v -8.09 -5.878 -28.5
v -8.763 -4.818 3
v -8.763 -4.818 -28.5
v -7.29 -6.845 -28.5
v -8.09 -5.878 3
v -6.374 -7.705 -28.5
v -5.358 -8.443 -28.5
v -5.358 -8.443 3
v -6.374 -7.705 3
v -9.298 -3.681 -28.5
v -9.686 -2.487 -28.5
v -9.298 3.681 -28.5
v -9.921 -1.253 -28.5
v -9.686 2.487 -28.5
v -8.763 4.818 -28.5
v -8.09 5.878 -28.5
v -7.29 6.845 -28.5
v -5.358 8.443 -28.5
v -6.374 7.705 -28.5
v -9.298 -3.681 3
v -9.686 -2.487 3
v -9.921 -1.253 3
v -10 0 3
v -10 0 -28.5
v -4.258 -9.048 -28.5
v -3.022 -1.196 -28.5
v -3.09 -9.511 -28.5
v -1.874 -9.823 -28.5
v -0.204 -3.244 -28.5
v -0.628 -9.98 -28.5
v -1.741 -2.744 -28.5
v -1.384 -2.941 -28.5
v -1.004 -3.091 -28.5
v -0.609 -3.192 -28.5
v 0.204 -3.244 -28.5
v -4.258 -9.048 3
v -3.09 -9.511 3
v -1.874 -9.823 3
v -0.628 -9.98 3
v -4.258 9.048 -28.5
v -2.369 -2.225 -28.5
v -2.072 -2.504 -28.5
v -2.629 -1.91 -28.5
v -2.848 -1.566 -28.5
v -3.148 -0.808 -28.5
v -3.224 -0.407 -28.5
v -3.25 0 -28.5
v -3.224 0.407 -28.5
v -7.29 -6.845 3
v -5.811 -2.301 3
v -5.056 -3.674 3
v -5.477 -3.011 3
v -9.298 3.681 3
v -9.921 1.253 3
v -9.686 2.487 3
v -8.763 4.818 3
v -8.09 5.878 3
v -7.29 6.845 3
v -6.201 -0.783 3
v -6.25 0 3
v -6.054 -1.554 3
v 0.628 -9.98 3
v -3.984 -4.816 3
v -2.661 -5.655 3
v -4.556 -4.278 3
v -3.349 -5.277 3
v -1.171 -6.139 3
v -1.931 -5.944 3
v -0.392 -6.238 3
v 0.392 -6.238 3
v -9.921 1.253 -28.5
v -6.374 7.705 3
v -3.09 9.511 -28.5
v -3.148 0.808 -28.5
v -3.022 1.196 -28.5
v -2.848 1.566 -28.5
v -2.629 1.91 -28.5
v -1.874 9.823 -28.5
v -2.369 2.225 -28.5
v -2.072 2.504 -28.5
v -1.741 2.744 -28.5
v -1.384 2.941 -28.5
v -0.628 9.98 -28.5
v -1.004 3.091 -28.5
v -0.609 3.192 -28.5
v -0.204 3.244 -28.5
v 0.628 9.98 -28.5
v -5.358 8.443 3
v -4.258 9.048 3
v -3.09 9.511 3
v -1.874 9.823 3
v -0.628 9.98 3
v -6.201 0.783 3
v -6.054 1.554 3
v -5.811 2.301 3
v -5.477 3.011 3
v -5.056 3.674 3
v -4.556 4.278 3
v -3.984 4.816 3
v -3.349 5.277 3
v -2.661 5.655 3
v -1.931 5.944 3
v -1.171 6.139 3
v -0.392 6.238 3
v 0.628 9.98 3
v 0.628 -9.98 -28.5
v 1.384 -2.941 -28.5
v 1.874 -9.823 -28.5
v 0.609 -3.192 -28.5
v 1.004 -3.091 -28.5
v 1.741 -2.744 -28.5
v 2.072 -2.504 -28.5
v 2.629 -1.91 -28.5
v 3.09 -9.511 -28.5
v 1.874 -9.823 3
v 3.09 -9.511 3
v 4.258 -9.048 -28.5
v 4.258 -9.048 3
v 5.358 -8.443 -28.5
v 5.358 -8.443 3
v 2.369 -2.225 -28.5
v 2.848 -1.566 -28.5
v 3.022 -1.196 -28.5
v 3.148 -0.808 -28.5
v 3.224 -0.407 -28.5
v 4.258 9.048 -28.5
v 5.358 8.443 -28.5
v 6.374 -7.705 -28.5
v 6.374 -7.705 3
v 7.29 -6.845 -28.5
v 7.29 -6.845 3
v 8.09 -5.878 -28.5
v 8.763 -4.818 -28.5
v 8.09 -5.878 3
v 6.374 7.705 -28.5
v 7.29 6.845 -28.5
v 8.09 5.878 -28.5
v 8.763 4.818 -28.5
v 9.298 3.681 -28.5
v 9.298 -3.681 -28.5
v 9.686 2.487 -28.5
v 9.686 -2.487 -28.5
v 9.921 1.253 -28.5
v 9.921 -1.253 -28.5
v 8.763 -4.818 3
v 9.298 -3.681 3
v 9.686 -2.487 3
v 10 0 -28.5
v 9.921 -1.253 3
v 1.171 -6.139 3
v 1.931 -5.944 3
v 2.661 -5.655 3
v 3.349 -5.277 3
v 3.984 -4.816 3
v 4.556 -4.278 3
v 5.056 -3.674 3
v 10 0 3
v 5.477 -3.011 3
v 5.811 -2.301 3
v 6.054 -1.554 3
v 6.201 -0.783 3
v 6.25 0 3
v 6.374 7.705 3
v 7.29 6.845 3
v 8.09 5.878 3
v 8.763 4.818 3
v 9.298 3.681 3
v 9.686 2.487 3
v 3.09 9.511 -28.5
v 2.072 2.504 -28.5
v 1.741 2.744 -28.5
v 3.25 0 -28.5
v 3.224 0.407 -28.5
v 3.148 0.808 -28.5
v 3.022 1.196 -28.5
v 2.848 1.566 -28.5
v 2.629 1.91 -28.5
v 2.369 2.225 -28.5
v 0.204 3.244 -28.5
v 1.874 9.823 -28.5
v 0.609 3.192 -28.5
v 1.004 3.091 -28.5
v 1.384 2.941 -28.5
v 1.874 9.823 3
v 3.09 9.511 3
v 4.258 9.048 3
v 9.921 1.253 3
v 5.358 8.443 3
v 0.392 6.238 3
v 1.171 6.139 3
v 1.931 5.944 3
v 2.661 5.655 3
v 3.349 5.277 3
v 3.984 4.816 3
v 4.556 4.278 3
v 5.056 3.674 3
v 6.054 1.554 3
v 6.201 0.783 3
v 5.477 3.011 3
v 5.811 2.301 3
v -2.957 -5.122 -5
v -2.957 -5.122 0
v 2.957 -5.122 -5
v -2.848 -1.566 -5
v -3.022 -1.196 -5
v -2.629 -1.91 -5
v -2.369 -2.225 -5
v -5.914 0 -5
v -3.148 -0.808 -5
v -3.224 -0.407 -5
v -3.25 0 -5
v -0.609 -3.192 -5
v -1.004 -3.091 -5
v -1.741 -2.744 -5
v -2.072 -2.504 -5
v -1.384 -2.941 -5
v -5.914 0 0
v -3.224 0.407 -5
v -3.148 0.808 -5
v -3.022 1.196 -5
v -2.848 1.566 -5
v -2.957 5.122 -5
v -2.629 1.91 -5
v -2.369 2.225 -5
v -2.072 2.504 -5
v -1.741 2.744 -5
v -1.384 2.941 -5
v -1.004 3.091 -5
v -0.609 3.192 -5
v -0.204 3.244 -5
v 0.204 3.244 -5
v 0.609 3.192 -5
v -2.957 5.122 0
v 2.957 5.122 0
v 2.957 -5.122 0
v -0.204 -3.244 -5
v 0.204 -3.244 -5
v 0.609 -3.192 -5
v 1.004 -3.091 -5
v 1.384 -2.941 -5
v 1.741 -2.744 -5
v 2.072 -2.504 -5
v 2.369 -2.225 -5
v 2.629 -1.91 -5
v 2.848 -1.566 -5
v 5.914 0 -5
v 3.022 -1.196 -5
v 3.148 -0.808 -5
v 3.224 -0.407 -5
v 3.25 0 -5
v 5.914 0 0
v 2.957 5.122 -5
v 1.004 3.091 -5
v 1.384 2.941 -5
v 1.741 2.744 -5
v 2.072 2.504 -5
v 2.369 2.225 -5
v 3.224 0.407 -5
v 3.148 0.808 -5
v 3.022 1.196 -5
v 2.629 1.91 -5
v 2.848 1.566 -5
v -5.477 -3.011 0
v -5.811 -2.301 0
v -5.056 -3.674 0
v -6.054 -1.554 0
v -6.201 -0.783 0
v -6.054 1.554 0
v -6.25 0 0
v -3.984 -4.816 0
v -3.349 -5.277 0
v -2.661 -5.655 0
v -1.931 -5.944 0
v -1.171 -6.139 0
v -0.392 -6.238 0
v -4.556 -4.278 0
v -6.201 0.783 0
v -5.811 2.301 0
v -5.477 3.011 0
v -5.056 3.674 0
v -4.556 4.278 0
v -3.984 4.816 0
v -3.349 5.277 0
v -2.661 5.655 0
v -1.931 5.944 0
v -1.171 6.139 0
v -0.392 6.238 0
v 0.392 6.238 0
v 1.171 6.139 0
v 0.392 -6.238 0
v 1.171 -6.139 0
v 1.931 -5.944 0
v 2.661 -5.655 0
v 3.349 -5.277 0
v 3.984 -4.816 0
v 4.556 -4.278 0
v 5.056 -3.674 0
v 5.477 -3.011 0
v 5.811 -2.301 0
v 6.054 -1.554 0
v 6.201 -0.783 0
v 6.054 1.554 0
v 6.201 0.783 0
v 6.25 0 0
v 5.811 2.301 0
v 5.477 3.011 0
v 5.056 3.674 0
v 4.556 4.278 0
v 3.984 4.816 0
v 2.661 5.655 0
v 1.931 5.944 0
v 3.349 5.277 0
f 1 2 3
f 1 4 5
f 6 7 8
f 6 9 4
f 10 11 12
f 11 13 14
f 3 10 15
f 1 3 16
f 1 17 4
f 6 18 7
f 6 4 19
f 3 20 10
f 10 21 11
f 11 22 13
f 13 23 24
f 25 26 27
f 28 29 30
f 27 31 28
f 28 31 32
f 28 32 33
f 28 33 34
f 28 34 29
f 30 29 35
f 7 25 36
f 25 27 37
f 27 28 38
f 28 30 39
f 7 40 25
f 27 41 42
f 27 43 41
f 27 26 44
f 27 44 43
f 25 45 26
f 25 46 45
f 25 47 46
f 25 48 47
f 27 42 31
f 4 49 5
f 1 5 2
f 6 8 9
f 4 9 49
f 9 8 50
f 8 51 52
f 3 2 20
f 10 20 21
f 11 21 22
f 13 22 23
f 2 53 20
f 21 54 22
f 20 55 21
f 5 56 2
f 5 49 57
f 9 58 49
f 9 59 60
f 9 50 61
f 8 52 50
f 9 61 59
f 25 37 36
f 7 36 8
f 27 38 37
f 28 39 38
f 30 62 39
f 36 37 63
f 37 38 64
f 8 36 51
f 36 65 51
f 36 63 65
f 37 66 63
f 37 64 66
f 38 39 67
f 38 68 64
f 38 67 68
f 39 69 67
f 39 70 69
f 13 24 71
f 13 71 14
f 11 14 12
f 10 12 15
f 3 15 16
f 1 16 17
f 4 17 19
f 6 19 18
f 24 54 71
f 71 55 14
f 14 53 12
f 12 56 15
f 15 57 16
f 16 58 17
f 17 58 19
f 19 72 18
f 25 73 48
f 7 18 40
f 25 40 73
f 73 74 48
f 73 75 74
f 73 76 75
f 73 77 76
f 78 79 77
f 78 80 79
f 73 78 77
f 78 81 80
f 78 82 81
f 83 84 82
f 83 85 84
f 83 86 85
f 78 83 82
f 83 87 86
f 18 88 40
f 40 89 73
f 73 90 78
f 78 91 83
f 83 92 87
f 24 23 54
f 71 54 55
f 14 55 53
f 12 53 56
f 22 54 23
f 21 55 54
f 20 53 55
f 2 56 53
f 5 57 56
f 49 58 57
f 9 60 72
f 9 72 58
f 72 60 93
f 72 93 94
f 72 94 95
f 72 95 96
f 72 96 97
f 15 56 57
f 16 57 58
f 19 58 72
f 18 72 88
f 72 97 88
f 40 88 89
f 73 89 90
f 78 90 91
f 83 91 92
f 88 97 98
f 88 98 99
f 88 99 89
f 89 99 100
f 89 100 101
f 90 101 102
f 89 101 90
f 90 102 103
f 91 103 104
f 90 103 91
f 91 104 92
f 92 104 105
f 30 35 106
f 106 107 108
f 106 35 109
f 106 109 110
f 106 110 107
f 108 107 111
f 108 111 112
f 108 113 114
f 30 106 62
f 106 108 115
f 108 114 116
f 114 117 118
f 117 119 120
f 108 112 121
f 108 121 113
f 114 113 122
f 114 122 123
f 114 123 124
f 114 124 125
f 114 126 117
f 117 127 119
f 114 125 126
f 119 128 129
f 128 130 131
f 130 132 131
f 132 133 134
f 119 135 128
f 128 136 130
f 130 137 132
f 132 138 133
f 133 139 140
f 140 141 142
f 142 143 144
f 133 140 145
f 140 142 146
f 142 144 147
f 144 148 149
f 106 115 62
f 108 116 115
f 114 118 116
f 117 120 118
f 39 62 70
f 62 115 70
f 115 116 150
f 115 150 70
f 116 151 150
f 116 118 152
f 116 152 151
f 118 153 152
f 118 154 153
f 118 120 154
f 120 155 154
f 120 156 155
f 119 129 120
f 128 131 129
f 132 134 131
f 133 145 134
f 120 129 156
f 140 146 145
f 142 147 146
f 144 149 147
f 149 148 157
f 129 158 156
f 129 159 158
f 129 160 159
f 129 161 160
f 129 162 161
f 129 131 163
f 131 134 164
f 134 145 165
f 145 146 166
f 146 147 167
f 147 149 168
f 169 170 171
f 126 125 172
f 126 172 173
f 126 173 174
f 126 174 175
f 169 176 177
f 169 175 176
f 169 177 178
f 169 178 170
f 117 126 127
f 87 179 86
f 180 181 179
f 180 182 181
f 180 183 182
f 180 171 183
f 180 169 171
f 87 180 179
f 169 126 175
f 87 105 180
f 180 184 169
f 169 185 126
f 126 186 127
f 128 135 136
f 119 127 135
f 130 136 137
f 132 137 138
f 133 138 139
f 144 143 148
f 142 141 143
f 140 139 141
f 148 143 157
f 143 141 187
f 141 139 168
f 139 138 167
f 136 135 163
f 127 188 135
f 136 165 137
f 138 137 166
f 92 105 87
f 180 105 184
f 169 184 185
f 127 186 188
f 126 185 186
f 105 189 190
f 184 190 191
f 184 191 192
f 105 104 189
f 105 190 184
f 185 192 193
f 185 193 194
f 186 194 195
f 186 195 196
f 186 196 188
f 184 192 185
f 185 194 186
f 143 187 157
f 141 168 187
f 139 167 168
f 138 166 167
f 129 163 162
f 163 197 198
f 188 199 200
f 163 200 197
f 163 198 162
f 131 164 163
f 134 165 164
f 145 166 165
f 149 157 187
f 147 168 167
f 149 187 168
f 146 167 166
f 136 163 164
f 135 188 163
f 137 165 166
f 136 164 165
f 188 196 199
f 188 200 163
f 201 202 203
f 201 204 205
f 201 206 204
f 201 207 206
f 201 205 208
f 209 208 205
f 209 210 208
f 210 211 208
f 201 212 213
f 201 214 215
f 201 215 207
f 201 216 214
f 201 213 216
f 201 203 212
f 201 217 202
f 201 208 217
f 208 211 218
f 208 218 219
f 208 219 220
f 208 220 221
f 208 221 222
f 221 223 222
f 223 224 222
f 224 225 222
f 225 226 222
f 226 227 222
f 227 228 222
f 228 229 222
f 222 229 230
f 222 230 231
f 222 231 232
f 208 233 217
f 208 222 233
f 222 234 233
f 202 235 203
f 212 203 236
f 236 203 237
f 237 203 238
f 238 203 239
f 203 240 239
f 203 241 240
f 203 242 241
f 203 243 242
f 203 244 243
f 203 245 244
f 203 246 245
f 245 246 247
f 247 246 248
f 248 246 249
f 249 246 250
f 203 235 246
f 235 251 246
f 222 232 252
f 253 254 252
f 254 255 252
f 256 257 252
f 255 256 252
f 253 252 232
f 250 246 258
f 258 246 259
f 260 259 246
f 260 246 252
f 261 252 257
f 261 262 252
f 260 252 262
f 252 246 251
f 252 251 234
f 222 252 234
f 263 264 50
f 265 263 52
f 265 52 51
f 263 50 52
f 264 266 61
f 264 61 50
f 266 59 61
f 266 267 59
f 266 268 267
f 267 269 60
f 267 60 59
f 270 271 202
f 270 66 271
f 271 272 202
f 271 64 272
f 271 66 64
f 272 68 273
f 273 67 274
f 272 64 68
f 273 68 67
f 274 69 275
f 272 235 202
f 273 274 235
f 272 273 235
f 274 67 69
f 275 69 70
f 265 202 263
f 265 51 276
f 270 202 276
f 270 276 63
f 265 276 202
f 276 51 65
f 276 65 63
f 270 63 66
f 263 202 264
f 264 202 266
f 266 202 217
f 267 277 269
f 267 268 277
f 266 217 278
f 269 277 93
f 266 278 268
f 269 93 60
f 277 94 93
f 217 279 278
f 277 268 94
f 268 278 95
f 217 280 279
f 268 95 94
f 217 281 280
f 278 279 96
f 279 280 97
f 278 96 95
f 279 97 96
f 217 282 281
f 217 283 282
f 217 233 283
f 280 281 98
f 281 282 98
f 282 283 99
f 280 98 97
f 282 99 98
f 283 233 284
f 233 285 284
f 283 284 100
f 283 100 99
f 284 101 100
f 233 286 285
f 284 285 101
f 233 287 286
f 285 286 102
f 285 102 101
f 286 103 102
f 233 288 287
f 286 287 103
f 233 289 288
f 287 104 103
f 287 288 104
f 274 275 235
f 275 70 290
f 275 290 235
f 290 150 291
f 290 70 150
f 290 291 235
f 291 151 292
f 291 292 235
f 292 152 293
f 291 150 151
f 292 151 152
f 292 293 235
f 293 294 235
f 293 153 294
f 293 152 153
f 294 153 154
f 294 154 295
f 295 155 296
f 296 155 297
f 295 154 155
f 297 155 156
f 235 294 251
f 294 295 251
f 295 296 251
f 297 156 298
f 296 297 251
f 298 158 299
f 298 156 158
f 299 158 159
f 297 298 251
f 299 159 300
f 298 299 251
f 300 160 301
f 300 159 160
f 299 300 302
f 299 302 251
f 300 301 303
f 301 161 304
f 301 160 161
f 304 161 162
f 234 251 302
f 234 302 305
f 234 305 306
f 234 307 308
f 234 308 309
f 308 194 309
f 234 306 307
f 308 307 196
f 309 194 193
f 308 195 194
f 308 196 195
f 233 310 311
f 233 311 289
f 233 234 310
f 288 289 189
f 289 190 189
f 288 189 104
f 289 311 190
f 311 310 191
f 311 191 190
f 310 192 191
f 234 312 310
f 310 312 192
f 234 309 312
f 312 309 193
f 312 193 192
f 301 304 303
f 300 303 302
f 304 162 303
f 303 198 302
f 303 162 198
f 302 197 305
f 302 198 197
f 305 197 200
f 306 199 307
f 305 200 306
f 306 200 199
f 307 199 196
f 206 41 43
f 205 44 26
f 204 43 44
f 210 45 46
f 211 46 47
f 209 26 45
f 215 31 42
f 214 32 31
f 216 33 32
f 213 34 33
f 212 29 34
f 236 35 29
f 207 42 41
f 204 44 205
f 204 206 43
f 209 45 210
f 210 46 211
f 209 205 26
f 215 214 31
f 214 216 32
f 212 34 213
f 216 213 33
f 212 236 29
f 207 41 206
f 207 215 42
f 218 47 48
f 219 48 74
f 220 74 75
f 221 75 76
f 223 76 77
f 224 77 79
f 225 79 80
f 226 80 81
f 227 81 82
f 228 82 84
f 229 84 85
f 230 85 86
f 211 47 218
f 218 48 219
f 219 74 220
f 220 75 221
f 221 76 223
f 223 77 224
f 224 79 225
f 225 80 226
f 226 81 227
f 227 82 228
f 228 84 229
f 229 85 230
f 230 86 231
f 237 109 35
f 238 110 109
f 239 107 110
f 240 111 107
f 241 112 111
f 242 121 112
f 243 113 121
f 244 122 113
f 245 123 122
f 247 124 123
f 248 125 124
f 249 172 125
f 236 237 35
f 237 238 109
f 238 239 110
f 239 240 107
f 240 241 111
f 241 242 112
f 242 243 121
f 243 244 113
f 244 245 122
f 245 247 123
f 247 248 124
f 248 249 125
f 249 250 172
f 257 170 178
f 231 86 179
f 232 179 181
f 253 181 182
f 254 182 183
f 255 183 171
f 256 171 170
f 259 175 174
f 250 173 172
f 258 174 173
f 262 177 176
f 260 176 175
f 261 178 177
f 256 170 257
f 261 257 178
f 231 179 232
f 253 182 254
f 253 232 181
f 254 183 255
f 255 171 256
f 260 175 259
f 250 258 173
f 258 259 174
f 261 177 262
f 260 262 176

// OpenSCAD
$fn = 50;


difference() {
	union() {
		translate(v = [0, 0, -28.5000000000]) {
			cylinder(h = 31.5000000000, r = 10.0000000000);
		}
		#translate(v = [0, 0, -30.0000000000]) {
			cylinder(h = 30, r = 2.8750000000);
		}
	}
	union() {
		translate(v = [0, 0, 0]) {
			rotate(a = [0, 0, 0]) {
				difference() {
					union() {
						translate(v = [0, 0, -5]) {
							linear_extrude(height = 5) {
								polygon(points = [[5.9142500000, 0.0000000000], [2.9571250000, 5.1218907443], [-2.9571250000, 5.1218907443], [-5.9142500000, 0.0000000000], [-2.9571250000, -5.1218907443], [2.9571250000, -5.1218907443]]);
							}
						}
					}
					union();
				}
			}
		}
		#cylinder(h = 3, r = 6.2500000000);
		#translate(v = [0, 0, -100.0000000000]) {
			cylinder(h = 200, r = 3.2500000000);
		}
	}
}
